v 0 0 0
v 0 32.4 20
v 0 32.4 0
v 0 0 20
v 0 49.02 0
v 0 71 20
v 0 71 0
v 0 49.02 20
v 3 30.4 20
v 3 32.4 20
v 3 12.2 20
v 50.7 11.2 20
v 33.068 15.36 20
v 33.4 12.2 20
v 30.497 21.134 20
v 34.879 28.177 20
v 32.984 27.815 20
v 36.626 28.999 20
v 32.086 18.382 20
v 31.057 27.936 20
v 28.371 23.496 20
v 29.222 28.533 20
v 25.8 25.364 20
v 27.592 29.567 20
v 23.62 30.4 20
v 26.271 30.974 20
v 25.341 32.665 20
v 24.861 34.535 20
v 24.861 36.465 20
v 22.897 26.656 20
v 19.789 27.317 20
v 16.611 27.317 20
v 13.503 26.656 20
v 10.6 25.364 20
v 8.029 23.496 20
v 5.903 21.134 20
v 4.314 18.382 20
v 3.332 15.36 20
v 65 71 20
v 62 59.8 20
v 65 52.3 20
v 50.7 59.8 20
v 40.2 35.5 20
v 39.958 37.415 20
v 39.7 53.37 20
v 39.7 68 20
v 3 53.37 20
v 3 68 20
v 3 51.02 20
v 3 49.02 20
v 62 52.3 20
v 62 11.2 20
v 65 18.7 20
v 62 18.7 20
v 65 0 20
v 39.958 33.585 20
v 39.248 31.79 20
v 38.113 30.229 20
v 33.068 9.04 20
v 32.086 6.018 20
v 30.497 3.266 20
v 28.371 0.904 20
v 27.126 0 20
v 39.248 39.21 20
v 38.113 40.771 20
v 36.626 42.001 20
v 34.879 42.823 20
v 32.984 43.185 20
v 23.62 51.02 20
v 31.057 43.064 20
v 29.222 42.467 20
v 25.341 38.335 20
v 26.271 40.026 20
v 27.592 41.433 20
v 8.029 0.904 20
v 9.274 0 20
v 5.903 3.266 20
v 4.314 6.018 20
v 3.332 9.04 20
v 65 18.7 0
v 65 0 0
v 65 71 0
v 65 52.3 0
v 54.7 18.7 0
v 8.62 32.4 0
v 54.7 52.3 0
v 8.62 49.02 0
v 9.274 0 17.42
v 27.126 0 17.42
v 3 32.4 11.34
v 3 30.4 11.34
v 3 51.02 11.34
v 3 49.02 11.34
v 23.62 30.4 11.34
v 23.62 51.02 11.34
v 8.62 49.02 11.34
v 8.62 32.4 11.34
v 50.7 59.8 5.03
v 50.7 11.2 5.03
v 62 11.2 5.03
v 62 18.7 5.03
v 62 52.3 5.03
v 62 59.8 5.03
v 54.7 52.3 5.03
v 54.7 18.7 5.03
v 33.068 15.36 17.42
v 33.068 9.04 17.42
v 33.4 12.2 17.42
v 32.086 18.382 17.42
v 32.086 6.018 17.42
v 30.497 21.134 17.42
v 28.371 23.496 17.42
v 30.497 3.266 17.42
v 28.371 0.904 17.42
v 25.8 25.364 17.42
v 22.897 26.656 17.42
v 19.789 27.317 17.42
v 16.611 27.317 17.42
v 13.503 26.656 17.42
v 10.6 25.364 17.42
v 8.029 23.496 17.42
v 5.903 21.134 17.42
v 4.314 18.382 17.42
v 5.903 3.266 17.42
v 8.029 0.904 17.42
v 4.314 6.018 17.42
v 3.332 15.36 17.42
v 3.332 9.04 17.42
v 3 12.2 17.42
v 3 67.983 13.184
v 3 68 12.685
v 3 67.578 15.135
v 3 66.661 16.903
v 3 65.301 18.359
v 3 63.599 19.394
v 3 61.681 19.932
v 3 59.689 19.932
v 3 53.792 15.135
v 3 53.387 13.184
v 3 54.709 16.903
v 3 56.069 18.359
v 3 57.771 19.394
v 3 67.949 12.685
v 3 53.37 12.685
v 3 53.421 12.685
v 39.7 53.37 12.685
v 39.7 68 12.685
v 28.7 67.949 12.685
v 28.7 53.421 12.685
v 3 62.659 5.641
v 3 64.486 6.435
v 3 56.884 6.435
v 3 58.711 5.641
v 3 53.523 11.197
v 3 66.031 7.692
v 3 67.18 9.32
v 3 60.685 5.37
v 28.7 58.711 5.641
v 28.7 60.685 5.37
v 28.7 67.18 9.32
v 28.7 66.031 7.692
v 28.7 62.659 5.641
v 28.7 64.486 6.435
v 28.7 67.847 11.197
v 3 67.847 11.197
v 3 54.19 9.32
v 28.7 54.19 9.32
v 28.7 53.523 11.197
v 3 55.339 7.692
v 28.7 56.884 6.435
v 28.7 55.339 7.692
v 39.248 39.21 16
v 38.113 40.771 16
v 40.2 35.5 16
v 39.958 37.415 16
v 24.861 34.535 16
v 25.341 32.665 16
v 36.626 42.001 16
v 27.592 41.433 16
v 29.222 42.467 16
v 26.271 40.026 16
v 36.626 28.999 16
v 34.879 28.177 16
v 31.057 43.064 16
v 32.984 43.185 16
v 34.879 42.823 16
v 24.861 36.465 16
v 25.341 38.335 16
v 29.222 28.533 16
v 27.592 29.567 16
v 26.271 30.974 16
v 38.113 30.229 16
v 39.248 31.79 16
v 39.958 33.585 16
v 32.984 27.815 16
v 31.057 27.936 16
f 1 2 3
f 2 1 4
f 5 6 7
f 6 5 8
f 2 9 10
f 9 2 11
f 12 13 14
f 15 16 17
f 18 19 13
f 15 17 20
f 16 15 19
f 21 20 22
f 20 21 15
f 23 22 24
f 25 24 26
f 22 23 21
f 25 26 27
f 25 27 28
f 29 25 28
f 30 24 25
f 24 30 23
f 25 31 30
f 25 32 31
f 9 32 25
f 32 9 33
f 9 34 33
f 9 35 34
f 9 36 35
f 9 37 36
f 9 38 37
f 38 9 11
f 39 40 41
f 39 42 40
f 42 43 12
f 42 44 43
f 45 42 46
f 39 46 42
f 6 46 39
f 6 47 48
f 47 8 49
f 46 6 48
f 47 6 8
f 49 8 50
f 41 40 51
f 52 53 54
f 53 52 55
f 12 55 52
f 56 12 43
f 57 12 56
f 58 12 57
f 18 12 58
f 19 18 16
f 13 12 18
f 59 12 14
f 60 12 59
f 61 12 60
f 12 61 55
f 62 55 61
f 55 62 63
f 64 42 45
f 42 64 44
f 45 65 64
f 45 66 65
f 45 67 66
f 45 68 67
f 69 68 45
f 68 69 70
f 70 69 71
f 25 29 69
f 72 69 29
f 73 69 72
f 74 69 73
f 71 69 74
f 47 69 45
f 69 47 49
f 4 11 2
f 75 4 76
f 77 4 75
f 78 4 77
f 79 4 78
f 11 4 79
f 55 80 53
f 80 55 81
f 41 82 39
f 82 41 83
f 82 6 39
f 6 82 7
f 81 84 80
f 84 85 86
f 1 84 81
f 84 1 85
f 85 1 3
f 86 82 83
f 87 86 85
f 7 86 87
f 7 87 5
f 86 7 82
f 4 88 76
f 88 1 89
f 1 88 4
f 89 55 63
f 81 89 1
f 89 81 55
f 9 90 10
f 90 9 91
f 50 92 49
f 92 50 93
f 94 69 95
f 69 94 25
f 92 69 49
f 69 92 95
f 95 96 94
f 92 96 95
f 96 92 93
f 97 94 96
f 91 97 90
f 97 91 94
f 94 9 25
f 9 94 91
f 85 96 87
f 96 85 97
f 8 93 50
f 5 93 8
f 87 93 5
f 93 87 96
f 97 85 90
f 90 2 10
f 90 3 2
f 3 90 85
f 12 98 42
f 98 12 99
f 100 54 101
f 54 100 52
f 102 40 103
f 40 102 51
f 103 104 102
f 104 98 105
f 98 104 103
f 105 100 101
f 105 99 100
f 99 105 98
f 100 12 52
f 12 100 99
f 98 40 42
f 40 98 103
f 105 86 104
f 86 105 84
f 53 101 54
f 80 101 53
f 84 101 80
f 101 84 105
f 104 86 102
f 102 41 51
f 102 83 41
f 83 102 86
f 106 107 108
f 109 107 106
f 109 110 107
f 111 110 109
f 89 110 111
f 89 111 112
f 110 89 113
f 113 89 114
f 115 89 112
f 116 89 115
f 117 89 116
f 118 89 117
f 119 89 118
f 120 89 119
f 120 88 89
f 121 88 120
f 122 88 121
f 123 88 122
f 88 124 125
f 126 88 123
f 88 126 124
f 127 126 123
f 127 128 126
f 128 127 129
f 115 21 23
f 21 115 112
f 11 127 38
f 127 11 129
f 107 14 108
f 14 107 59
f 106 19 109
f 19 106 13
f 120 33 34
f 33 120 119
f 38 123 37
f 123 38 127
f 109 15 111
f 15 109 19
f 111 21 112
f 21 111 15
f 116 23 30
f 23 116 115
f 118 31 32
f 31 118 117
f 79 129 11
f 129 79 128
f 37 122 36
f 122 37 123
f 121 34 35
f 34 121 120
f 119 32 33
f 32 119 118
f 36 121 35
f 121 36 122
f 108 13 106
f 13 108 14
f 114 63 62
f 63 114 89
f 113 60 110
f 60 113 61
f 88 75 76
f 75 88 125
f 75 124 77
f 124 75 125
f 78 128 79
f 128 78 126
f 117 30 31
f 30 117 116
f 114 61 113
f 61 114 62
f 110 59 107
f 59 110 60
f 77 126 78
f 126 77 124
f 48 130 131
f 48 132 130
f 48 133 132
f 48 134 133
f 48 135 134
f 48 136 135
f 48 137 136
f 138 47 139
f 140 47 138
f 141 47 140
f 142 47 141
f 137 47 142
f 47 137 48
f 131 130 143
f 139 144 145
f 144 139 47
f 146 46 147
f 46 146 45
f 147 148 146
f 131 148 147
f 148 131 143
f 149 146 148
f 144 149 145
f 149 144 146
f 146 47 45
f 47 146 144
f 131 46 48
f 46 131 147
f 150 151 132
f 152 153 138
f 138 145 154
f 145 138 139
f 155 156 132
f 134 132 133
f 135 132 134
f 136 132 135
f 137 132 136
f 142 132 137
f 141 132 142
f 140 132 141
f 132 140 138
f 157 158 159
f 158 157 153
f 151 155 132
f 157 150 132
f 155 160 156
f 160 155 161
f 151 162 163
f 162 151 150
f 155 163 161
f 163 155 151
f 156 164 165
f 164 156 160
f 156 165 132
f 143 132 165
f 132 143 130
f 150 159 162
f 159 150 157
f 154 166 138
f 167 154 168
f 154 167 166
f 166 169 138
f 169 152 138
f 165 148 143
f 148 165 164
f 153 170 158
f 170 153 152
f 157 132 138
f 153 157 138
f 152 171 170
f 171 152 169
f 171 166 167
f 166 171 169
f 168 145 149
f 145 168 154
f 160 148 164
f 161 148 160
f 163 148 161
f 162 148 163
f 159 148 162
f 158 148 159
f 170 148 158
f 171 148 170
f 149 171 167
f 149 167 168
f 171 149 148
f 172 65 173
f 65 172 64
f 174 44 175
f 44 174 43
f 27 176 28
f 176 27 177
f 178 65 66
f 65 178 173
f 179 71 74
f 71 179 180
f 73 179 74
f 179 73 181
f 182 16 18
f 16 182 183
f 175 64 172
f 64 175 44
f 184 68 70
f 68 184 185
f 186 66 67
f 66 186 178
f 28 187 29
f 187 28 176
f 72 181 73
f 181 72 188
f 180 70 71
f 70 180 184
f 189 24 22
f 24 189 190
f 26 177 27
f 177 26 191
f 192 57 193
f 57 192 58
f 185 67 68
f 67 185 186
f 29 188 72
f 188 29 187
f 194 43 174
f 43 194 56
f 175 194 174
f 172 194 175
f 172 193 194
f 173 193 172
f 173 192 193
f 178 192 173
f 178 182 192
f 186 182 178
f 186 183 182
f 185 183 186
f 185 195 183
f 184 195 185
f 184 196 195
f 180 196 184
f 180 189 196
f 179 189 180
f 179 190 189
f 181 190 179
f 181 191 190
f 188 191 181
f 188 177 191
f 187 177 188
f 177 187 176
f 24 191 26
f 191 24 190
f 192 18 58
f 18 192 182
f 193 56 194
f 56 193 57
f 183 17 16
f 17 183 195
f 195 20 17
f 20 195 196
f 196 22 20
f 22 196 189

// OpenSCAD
length = 65;
width = 71;

height = 20;

//Based on magnet size:
magnetBaseOuterDiameter = 20;
magnetBaseInnerDiameter = 15.4;

magnetHeight = 4.0;

numberedTileLength = 20.12 + .5;
numberedTileWidth = 20.12 + .5;
numberedTileHeight = 8.36 + .3;

wallTileLength = 10.8 + .5;
wallTileWidth = 48.1 + .5;
wallTileHeight = 14.67 + .3;

squareLipWidthRemainder = 4;
squareLipLengthRemainder = 15;

startPlayerDiameter = 29.90 + .5;
startPlayerHeight = 2.08 + .5;
startPlayerOffset = 3;

wallThickness = 3;

fingerNotchSize = 11;


cylinderDiameter = 14.23 + .4;
cylinderBoxLength = 25.20 + .5;

difference(){
    cube([length, width, height]);

    translate([wallThickness, wallThickness + startPlayerDiameter - startPlayerOffset, height - numberedTileHeight])
        cube([numberedTileLength,numberedTileWidth, numberedTileHeight]);
    translate([
        0,
        wallThickness + squareLipWidthRemainder/2 + startPlayerDiameter - startPlayerOffset,
        0])
        cube([
            numberedTileLength + wallThickness - squareLipLengthRemainder,
            numberedTileWidth - squareLipWidthRemainder,
            height]);

     


    translate([length - (wallThickness + wallTileLength), width/2 - (wallTileWidth/2), height - wallTileHeight])
        cube([wallTileLength,wallTileWidth, wallTileHeight]);
    translate([
        length - (wallThickness + wallTileLength - squareLipWidthRemainder),
        width/2 - (wallTileWidth/2) + squareLipLengthRemainder/2,
        0])
        cube([
            wallTileLength + wallThickness - squareLipWidthRemainder,
            wallTileWidth - squareLipLengthRemainder,
            height]);
    
      
            
    translate([wallThickness + startPlayerDiameter/2, startPlayerDiameter/2 - startPlayerOffset, height - startPlayerHeight])
        cylinder(startPlayerHeight, d=startPlayerDiameter);
        

    translate([
        wallThickness,
        width - (cylinderDiameter + wallThickness),
        height - (cylinderDiameter/2)])
        cube([cylinderBoxLength + fingerNotchSize, cylinderDiameter, cylinderDiameter/2]);
    translate([
        wallThickness,
        width - (wallThickness + cylinderDiameter/2),
        height - (cylinderDiameter/2)])
        rotate([0, 90, 0])
            cylinder(cylinderBoxLength, d=cylinderDiameter);

    
        
    translate([length/2, width/2, height - magnetHeight])
        cylinder(magnetHeight, d=magnetBaseInnerDiameter);
        

}
